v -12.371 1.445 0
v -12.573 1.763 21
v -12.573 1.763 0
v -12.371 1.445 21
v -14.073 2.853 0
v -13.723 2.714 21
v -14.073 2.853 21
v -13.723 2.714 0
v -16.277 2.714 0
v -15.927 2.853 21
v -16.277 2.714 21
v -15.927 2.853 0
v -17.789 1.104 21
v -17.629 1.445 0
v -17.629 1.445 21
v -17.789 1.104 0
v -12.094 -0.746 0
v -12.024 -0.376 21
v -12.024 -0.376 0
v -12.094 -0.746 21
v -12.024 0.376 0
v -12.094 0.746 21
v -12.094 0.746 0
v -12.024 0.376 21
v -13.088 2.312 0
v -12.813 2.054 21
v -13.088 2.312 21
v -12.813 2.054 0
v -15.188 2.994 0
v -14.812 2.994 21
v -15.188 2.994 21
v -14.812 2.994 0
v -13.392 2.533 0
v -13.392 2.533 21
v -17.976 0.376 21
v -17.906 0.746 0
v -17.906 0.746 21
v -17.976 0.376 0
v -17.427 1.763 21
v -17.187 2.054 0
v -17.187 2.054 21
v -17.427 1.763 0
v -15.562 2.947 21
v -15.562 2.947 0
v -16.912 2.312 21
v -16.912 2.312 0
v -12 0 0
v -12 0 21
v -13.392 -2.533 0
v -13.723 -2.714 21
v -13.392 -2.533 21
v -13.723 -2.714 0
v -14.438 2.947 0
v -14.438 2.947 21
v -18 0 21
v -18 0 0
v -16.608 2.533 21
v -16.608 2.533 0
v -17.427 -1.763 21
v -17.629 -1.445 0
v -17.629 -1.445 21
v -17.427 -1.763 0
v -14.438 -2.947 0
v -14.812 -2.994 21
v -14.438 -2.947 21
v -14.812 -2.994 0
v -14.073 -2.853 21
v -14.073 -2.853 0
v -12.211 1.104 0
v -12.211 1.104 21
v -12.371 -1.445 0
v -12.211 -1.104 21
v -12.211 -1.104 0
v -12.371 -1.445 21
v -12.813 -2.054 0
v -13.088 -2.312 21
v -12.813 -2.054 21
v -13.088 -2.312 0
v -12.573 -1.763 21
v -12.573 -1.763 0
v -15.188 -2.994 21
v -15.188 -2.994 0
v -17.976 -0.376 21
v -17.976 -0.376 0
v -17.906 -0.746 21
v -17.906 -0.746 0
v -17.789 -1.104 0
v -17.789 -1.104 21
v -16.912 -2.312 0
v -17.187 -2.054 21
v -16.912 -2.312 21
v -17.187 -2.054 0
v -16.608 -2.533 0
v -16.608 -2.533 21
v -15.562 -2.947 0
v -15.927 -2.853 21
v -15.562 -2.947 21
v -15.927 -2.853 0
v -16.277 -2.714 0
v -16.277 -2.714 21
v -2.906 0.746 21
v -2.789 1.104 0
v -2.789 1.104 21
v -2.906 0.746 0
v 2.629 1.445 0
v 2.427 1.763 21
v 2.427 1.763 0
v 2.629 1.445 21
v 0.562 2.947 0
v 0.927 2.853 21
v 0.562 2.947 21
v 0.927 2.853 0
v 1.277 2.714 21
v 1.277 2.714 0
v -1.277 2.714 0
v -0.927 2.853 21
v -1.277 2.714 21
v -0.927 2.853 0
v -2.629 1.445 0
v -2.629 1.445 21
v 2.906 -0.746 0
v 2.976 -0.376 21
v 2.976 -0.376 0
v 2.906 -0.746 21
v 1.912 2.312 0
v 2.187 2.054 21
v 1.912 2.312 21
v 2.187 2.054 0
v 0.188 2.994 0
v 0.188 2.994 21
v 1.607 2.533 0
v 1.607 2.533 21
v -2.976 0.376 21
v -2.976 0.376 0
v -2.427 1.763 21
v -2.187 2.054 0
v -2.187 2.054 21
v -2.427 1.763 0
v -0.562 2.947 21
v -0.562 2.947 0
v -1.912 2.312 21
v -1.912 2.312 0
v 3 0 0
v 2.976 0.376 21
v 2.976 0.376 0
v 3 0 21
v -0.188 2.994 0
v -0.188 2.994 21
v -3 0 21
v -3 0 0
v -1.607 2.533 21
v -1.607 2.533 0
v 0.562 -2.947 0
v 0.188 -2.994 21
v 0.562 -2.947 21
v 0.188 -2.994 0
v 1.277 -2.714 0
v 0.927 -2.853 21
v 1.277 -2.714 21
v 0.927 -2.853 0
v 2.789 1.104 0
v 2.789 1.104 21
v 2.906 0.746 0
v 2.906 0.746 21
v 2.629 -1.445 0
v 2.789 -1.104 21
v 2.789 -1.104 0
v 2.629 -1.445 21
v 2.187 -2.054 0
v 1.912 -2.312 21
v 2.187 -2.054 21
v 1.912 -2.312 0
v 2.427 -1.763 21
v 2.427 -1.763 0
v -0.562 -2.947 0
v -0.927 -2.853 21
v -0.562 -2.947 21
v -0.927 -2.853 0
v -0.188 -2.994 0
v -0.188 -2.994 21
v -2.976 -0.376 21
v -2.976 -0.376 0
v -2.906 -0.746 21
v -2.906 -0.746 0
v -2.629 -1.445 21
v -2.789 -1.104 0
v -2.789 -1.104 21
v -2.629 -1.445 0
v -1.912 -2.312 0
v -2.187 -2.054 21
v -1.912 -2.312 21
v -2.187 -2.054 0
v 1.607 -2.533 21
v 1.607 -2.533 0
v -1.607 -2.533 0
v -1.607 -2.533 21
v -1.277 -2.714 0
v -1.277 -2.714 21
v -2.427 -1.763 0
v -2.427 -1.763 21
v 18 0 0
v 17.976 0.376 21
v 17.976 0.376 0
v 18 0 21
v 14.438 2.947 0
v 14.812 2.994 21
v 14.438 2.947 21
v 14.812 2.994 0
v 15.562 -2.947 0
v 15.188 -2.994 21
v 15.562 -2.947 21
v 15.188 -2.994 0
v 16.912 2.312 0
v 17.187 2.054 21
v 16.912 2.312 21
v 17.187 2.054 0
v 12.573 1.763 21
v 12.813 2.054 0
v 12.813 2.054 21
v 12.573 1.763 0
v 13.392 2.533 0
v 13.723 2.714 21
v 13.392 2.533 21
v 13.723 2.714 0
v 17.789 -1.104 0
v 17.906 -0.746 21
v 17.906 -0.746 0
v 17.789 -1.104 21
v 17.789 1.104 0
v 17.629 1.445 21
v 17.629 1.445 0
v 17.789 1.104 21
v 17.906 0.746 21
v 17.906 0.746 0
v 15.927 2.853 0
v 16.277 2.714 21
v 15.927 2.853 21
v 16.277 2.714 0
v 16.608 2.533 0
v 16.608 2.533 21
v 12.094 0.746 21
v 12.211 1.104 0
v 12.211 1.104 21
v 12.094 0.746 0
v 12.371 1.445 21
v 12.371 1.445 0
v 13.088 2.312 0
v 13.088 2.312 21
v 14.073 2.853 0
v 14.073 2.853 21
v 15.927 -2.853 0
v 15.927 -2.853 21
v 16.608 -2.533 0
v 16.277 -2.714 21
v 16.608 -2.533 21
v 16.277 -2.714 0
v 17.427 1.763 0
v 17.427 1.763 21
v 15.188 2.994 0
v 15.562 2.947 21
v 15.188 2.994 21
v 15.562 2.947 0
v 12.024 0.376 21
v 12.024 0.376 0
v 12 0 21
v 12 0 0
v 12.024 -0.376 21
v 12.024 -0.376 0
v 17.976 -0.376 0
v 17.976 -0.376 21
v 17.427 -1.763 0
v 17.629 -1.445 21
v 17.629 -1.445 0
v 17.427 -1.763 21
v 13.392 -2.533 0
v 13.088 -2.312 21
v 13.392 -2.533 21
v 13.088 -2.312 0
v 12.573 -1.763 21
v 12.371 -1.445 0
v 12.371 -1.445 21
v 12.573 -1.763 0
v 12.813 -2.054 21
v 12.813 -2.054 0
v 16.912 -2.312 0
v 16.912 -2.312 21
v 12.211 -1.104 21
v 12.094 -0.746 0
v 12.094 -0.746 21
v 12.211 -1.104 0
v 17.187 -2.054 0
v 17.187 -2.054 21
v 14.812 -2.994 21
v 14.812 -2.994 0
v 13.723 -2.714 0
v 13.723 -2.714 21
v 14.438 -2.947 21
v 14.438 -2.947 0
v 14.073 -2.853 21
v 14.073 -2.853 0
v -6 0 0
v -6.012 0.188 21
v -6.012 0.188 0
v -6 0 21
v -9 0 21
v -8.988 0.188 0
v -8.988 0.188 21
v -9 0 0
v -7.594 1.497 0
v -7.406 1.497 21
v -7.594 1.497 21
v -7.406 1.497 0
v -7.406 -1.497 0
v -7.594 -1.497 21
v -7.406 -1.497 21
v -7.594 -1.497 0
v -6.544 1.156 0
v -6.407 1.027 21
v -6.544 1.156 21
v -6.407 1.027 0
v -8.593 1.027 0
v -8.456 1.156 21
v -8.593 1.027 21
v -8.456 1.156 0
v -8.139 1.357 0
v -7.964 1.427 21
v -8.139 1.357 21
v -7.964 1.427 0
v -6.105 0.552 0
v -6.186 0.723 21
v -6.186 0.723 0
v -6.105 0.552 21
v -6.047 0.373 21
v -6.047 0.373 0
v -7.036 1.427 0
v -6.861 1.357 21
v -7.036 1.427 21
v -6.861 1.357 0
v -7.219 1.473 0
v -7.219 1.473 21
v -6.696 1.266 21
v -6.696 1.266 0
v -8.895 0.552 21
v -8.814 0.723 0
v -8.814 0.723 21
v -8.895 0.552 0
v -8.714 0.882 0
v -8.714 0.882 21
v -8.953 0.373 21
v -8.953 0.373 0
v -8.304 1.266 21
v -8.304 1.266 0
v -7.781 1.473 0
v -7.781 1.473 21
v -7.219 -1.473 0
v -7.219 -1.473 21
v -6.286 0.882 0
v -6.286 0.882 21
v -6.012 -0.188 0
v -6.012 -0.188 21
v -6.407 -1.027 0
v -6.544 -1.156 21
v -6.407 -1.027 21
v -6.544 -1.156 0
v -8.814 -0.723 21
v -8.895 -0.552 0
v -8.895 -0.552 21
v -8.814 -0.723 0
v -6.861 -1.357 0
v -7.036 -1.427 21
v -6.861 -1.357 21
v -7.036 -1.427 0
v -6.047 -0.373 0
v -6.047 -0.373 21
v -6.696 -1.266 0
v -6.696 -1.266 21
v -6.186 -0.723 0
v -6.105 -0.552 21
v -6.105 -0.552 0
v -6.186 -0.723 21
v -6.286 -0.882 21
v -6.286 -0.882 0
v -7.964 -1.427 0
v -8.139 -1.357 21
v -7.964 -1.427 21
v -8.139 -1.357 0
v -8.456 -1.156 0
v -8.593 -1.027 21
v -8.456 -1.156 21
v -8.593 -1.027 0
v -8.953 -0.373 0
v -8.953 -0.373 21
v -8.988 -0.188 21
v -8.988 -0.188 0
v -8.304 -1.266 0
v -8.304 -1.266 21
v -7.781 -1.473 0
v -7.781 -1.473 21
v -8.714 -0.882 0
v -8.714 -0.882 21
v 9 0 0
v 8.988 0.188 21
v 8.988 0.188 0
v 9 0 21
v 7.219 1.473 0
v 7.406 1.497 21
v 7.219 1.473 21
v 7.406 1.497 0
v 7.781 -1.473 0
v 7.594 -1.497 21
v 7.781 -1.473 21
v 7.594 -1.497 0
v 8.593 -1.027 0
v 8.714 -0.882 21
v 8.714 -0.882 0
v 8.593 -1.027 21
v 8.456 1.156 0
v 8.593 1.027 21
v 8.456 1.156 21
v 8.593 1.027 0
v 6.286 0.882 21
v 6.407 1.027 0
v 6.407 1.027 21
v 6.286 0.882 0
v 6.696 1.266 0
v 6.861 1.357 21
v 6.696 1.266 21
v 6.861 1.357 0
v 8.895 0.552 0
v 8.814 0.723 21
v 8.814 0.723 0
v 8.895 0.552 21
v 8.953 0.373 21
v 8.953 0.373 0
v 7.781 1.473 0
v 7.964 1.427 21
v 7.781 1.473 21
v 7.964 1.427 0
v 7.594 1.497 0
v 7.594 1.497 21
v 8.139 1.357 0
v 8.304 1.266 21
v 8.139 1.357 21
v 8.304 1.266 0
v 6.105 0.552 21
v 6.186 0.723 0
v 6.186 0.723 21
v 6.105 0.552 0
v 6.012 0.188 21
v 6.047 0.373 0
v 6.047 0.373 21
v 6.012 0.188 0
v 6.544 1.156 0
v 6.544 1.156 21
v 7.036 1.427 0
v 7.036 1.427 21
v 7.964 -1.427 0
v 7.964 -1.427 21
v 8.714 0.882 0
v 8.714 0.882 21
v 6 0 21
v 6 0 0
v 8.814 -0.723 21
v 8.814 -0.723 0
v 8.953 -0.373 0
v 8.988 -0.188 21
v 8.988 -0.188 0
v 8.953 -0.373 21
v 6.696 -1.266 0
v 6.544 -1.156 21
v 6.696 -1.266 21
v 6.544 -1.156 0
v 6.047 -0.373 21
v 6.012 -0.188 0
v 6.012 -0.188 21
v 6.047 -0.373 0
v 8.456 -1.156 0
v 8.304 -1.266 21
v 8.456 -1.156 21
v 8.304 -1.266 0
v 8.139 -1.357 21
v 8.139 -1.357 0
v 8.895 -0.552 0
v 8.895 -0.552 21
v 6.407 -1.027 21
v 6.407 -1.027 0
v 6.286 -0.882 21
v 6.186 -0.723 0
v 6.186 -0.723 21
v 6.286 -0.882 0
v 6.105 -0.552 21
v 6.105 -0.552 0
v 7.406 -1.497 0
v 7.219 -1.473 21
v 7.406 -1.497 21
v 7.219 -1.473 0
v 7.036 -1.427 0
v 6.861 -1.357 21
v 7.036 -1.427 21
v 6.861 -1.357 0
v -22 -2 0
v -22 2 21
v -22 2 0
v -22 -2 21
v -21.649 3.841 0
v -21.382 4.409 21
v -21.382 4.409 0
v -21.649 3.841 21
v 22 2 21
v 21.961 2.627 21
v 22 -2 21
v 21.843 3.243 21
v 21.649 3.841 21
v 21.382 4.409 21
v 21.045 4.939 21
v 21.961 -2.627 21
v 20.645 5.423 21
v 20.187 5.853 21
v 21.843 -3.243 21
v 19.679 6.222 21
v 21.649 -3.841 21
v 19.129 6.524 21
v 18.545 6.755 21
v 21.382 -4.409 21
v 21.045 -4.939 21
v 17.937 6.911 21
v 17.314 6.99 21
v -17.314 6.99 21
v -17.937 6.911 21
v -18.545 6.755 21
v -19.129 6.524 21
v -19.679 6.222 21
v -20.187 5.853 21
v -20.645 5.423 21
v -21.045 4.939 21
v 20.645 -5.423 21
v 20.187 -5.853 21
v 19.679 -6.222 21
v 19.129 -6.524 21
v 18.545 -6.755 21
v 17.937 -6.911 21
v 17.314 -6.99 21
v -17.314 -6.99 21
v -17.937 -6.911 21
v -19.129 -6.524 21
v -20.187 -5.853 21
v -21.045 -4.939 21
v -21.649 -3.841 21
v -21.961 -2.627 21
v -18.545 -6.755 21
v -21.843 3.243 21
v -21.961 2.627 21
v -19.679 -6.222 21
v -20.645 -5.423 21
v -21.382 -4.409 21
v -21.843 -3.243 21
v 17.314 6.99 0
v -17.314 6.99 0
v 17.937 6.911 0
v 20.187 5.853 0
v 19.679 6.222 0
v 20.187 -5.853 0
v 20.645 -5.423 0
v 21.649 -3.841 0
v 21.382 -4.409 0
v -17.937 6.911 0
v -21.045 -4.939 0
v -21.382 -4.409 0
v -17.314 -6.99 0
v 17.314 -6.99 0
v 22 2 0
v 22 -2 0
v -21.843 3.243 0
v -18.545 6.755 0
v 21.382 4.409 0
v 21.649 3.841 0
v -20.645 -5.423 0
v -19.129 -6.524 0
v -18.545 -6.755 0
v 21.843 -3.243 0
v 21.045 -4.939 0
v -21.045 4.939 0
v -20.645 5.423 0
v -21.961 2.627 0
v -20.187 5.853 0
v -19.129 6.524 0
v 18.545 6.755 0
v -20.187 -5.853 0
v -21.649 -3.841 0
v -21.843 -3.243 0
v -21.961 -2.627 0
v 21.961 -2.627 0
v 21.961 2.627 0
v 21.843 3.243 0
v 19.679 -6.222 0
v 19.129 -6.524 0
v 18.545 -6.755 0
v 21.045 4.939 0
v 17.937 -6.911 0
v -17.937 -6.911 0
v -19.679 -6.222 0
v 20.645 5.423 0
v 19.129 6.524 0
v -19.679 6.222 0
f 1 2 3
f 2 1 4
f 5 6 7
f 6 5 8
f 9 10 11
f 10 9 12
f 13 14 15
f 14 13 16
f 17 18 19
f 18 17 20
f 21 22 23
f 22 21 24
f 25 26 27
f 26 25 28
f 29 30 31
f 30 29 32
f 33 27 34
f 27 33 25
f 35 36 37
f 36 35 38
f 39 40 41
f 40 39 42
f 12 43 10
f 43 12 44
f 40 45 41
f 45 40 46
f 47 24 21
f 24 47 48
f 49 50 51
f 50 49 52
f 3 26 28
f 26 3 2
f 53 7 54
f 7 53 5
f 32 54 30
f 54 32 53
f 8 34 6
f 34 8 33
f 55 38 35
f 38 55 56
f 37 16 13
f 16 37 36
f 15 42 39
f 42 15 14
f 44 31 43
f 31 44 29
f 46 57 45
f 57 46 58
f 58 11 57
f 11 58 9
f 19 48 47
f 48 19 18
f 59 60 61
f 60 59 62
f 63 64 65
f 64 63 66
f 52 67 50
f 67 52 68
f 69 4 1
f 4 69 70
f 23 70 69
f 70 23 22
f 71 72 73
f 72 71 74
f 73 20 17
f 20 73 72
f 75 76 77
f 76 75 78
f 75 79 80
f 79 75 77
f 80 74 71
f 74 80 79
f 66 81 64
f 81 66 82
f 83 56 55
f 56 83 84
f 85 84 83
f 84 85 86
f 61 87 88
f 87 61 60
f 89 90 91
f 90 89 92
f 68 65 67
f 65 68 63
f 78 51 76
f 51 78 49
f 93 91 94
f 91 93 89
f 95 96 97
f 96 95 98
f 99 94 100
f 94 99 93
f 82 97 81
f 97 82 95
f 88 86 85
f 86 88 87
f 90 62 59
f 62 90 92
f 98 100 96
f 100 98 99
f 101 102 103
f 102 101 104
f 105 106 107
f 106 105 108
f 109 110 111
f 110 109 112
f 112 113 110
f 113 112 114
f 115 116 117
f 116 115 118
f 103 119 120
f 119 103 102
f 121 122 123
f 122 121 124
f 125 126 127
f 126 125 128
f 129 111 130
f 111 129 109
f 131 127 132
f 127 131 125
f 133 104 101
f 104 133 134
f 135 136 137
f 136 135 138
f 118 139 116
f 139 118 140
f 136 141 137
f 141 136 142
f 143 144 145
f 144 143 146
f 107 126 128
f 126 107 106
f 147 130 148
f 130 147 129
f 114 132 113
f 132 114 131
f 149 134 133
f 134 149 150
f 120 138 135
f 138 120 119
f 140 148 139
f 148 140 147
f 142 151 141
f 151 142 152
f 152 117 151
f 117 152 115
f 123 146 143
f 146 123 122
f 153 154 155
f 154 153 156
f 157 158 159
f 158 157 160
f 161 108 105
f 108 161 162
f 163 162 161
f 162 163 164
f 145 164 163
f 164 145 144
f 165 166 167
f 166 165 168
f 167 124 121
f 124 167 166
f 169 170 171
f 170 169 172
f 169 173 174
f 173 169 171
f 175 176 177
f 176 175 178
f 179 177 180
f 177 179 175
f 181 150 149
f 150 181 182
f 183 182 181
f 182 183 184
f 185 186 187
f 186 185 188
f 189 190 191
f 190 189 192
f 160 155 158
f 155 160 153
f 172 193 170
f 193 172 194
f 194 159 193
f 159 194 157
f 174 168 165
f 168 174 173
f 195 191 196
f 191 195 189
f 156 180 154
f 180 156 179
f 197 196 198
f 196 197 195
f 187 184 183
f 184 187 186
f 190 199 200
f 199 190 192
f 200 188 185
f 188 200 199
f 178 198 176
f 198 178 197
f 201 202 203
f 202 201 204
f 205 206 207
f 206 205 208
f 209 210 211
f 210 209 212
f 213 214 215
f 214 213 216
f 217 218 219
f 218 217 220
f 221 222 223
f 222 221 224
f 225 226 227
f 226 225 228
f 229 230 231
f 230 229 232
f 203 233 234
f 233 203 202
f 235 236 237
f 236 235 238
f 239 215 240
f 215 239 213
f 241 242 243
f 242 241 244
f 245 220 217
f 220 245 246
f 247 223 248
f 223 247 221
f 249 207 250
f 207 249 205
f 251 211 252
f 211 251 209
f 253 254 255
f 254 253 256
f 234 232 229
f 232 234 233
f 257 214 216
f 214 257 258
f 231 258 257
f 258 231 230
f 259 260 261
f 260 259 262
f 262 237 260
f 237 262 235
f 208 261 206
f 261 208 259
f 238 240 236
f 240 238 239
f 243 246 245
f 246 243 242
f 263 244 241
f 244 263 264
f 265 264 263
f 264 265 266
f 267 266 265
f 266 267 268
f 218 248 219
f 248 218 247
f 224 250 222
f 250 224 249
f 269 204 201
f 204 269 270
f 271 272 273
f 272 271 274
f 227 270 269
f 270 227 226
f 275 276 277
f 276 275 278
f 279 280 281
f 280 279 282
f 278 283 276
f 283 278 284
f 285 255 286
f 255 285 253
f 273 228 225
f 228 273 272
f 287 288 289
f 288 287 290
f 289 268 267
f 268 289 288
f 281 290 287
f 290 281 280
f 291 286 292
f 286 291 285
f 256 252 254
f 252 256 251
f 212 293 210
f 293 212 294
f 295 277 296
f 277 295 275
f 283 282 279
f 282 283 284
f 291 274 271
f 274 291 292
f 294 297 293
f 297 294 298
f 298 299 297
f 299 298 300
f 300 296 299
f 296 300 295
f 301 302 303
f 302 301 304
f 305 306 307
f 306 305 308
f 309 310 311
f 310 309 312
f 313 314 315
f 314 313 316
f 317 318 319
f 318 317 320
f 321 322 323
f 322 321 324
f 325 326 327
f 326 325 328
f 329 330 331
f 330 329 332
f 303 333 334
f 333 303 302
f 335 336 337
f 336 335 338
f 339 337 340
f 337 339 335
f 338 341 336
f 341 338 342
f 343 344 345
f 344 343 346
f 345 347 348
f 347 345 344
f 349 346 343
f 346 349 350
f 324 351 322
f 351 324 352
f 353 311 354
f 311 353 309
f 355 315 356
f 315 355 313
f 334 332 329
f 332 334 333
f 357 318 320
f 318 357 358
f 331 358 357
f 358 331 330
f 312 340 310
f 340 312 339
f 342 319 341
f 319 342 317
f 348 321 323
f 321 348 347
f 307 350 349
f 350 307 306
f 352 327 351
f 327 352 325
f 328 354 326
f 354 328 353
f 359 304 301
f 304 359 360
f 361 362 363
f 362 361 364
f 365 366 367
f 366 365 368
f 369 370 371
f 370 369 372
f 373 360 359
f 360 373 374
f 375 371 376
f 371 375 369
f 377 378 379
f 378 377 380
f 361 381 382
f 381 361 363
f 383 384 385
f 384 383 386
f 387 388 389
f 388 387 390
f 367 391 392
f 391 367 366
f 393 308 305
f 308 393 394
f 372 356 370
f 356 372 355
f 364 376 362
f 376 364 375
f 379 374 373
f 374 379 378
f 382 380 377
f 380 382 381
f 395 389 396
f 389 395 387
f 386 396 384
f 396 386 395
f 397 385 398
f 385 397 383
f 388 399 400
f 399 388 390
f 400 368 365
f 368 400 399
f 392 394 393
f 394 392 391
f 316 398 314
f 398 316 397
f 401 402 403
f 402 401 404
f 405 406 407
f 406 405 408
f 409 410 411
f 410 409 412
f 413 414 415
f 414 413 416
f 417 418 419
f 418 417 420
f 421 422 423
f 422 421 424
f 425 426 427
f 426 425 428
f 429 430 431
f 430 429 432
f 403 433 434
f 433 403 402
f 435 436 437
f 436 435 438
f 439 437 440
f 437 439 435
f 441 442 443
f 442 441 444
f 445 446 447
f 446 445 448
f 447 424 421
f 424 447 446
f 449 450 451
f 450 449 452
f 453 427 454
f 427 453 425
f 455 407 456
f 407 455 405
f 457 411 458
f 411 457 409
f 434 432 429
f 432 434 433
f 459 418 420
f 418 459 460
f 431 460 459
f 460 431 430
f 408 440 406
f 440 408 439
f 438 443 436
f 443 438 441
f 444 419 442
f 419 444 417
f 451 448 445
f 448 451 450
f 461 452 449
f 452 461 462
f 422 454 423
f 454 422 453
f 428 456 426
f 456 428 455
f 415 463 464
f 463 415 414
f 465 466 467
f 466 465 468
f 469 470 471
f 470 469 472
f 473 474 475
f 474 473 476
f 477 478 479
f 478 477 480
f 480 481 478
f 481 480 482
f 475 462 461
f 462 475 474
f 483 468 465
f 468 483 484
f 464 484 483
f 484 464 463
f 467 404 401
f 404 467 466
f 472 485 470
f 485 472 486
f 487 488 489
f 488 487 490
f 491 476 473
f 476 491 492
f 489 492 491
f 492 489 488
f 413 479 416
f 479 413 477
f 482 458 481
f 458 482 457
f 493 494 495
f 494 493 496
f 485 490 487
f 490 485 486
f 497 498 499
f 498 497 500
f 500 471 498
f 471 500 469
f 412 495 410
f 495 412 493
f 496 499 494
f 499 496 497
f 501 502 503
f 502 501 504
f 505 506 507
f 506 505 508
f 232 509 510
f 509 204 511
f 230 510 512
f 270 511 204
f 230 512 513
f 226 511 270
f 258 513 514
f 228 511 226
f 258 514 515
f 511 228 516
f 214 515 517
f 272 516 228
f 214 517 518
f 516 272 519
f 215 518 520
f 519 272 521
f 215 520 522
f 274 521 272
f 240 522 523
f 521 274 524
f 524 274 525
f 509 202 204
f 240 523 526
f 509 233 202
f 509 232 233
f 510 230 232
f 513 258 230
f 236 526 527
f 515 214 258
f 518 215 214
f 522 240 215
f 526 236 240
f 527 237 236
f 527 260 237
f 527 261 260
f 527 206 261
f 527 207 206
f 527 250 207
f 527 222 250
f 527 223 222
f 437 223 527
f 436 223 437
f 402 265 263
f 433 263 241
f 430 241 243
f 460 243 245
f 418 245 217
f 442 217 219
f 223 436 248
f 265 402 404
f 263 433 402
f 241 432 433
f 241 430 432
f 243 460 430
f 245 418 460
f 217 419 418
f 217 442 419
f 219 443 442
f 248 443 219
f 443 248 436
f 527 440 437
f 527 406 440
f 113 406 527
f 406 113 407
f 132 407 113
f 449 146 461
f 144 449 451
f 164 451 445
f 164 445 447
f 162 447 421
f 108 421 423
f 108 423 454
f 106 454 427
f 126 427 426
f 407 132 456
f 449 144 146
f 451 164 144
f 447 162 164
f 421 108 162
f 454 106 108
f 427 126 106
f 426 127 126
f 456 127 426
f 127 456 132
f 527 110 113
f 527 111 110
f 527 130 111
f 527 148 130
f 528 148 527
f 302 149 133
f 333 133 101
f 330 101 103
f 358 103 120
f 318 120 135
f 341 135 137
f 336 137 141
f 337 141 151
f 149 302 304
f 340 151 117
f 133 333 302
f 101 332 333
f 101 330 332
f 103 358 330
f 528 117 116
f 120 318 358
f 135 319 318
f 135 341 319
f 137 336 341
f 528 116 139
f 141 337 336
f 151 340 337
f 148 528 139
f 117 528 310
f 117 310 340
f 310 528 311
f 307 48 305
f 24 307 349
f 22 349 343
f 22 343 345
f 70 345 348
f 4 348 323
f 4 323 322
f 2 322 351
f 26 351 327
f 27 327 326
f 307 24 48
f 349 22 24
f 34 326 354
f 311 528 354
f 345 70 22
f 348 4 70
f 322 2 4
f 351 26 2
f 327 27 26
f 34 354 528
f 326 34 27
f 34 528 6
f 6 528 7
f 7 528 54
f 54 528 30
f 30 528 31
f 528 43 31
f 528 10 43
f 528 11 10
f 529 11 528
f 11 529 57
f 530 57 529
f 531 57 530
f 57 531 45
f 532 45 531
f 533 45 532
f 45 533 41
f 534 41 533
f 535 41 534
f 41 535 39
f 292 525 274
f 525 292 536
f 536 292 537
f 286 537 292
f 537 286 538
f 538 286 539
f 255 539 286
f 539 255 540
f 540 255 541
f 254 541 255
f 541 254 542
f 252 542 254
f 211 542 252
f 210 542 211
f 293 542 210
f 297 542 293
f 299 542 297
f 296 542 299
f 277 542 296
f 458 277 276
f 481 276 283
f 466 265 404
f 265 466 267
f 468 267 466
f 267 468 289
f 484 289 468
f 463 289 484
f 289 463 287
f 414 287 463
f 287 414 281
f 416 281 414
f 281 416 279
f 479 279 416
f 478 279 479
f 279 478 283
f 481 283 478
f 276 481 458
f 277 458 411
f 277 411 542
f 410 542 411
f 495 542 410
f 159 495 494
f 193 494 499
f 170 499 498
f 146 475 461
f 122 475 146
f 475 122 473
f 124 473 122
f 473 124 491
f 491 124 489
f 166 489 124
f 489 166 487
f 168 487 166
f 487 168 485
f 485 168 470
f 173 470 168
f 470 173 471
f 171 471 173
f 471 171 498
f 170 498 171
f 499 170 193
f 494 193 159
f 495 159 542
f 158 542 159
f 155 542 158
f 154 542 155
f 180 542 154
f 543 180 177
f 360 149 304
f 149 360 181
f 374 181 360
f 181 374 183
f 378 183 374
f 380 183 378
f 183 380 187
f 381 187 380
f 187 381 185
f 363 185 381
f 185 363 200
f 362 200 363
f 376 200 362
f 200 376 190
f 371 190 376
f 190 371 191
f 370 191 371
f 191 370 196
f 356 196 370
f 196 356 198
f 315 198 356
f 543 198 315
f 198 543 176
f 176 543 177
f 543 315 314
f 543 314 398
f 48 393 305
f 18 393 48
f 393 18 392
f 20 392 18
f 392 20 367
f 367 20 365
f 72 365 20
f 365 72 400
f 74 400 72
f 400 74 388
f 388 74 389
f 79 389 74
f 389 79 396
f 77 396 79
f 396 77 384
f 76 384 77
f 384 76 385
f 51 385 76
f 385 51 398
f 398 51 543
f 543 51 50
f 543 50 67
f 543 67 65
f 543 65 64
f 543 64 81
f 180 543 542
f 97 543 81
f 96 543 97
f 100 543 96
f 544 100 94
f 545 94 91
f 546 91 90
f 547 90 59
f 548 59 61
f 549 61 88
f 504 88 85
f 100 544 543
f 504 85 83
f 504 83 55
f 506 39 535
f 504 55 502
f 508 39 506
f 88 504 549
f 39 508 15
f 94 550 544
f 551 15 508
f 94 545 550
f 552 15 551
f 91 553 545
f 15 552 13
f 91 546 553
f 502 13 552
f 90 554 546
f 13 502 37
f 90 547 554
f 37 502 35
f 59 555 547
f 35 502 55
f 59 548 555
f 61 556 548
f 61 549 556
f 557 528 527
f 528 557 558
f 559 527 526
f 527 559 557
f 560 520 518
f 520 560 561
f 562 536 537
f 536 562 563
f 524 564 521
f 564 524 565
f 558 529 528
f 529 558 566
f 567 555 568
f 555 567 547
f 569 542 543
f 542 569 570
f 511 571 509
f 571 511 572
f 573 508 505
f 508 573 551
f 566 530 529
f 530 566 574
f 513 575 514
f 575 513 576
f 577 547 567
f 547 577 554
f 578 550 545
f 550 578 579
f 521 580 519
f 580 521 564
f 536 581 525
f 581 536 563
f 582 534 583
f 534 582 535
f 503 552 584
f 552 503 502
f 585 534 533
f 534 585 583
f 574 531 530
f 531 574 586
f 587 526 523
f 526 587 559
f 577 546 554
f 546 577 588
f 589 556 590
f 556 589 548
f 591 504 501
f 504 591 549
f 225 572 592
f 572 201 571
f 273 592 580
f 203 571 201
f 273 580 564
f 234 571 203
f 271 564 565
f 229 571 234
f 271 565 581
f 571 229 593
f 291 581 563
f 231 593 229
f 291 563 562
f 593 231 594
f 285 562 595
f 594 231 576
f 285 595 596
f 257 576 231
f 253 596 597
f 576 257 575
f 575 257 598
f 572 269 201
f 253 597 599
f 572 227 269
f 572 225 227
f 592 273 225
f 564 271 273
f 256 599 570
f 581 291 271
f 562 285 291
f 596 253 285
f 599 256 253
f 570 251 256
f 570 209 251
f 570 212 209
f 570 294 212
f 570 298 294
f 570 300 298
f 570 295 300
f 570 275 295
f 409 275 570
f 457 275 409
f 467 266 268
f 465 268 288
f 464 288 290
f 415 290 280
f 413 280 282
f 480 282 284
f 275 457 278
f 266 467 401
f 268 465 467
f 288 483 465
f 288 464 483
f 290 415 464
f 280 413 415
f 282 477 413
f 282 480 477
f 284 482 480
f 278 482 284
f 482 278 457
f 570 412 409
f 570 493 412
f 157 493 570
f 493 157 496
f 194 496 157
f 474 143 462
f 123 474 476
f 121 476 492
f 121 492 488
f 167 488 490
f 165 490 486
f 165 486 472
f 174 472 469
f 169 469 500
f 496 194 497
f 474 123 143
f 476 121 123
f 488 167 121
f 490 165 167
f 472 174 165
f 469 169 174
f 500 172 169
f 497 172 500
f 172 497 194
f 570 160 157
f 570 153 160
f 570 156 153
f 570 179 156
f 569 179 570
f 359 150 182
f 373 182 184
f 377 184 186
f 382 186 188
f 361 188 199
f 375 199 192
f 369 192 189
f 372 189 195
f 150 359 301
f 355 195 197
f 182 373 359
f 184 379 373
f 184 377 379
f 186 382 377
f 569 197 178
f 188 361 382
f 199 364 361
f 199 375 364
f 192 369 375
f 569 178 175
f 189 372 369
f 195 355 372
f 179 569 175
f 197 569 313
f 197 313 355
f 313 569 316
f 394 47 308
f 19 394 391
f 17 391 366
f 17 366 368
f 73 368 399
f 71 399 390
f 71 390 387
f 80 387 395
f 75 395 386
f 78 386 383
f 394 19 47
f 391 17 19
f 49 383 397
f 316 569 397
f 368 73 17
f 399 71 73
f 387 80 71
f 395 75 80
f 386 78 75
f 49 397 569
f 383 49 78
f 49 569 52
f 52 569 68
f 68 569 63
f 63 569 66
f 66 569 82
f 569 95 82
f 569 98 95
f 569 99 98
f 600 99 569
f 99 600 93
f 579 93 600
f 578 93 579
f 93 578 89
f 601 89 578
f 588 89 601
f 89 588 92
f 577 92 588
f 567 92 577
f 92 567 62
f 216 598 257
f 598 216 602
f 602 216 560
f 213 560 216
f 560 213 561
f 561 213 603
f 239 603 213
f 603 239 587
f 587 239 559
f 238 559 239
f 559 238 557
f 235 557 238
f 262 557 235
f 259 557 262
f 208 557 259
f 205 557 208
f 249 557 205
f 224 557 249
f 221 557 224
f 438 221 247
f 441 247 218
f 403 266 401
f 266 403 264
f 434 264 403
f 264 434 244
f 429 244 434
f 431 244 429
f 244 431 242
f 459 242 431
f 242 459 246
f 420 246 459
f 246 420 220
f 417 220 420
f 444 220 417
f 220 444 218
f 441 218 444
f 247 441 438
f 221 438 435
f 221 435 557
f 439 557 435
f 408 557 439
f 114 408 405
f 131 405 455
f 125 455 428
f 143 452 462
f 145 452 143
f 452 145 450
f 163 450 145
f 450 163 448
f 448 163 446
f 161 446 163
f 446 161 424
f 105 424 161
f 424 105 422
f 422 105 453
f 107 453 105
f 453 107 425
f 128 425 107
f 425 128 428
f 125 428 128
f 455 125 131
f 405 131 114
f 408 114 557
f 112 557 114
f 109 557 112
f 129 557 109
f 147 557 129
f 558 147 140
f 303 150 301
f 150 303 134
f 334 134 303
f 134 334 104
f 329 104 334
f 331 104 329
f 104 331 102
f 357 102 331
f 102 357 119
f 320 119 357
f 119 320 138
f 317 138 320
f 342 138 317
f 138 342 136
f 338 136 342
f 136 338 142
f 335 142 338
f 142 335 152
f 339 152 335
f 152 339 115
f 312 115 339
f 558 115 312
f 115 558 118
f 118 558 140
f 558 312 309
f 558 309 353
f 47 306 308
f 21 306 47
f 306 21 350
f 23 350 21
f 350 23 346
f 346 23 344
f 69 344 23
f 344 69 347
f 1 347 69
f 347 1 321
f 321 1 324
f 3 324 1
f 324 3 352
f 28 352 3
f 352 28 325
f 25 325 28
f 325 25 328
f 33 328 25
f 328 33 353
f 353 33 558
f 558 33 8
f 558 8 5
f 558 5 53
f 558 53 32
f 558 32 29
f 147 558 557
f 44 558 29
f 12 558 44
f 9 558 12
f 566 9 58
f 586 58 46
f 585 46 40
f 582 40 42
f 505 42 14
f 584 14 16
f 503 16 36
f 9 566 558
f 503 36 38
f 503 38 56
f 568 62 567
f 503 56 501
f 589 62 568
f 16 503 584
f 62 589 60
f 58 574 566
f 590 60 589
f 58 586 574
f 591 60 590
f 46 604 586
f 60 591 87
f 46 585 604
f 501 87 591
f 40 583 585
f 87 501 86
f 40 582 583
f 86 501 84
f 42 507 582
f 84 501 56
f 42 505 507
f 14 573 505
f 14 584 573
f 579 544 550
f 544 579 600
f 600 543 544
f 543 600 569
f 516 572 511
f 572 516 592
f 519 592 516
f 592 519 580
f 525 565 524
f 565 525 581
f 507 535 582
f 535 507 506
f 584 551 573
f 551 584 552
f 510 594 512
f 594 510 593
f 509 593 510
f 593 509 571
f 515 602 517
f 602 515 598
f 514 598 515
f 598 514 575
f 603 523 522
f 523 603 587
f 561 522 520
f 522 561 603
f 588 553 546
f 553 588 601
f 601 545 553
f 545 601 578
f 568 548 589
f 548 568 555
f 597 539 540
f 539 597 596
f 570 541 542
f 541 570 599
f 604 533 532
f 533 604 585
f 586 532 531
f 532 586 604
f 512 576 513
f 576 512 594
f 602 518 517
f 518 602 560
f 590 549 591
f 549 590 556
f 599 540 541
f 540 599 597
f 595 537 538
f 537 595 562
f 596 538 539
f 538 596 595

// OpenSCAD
$fn = 50;


difference() {
	union() {
		*color(alpha = 1.0000000000, c = "gray") {
			translate(v = [0, 7, 0]) {
				linear_extrude(height = 1) {
					text(font = "Arial:style=Bold", halign = "center", size = 4.5000000000, text = "COMMENT plate main", valign = "center");
				}
			}
		}
		*color(alpha = 1.0000000000, c = "gray") {
			translate(v = [0, 14, 0]) {
				linear_extrude(height = 1) {
					text(font = "Arial:style=Bold", halign = "center", size = 4.5000000000, text = "COMMENT description oobb_plate_shape_p_type_21_depth_3_width_1_height_21_thickness_true_both_holes", valign = "center");
				}
			}
		}
		hull() {
			translate(v = [-17.0000000000, 2.0000000000, 0]) {
				cylinder(h = 21, r = 5);
			}
			translate(v = [17.0000000000, 2.0000000000, 0]) {
				cylinder(h = 21, r = 5);
			}
			translate(v = [-17.0000000000, -2.0000000000, 0]) {
				cylinder(h = 21, r = 5);
			}
			translate(v = [17.0000000000, -2.0000000000, 0]) {
				cylinder(h = 21, r = 5);
			}
		}
	}
	union() {
		*color(alpha = 1.0000000000, c = "gray") {
			translate(v = [0, 7, 0]) {
				linear_extrude(height = 1) {
					text(font = "Arial:style=Bold", halign = "center", size = 4.5000000000, text = "COMMENT holes main", valign = "center");
				}
			}
		}
		*color(alpha = 1.0000000000, c = "gray") {
			translate(v = [0, 14, 0]) {
				linear_extrude(height = 1) {
					text(font = "Arial:style=Bold", halign = "center", size = 4.5000000000, text = "COMMENT description oobb_holes_shape_n_type_3_width_1_height_21_thickness_true_both_holes", valign = "center");
				}
			}
		}
		translate(v = [-15.0000000000, 0.0000000000, 0]) {
			translate(v = [0, 0, -50]) {
				cylinder(h = 100, r = 3.0000000000);
			}
		}
		translate(v = [0, 0, -50]) {
			cylinder(h = 100, r = 3.0000000000);
		}
		translate(v = [15.0000000000, 0.0000000000, 0]) {
			translate(v = [0, 0, -50]) {
				cylinder(h = 100, r = 3.0000000000);
			}
		}
		translate(v = [-15.0000000000, 0.0000000000, 0]) {
			translate(v = [0, 0, -50]) {
				cylinder(h = 100, r = 1.5000000000);
			}
		}
		translate(v = [-7.5000000000, 0.0000000000, 0]) {
			translate(v = [0, 0, -50]) {
				cylinder(h = 100, r = 1.5000000000);
			}
		}
		translate(v = [0, 0, -50]) {
			cylinder(h = 100, r = 1.5000000000);
		}
		translate(v = [7.5000000000, 0.0000000000, 0]) {
			translate(v = [0, 0, -50]) {
				cylinder(h = 100, r = 1.5000000000);
			}
		}
		translate(v = [15.0000000000, 0.0000000000, 0]) {
			translate(v = [0, 0, -50]) {
				cylinder(h = 100, r = 1.5000000000);
			}
		}
	}
}
